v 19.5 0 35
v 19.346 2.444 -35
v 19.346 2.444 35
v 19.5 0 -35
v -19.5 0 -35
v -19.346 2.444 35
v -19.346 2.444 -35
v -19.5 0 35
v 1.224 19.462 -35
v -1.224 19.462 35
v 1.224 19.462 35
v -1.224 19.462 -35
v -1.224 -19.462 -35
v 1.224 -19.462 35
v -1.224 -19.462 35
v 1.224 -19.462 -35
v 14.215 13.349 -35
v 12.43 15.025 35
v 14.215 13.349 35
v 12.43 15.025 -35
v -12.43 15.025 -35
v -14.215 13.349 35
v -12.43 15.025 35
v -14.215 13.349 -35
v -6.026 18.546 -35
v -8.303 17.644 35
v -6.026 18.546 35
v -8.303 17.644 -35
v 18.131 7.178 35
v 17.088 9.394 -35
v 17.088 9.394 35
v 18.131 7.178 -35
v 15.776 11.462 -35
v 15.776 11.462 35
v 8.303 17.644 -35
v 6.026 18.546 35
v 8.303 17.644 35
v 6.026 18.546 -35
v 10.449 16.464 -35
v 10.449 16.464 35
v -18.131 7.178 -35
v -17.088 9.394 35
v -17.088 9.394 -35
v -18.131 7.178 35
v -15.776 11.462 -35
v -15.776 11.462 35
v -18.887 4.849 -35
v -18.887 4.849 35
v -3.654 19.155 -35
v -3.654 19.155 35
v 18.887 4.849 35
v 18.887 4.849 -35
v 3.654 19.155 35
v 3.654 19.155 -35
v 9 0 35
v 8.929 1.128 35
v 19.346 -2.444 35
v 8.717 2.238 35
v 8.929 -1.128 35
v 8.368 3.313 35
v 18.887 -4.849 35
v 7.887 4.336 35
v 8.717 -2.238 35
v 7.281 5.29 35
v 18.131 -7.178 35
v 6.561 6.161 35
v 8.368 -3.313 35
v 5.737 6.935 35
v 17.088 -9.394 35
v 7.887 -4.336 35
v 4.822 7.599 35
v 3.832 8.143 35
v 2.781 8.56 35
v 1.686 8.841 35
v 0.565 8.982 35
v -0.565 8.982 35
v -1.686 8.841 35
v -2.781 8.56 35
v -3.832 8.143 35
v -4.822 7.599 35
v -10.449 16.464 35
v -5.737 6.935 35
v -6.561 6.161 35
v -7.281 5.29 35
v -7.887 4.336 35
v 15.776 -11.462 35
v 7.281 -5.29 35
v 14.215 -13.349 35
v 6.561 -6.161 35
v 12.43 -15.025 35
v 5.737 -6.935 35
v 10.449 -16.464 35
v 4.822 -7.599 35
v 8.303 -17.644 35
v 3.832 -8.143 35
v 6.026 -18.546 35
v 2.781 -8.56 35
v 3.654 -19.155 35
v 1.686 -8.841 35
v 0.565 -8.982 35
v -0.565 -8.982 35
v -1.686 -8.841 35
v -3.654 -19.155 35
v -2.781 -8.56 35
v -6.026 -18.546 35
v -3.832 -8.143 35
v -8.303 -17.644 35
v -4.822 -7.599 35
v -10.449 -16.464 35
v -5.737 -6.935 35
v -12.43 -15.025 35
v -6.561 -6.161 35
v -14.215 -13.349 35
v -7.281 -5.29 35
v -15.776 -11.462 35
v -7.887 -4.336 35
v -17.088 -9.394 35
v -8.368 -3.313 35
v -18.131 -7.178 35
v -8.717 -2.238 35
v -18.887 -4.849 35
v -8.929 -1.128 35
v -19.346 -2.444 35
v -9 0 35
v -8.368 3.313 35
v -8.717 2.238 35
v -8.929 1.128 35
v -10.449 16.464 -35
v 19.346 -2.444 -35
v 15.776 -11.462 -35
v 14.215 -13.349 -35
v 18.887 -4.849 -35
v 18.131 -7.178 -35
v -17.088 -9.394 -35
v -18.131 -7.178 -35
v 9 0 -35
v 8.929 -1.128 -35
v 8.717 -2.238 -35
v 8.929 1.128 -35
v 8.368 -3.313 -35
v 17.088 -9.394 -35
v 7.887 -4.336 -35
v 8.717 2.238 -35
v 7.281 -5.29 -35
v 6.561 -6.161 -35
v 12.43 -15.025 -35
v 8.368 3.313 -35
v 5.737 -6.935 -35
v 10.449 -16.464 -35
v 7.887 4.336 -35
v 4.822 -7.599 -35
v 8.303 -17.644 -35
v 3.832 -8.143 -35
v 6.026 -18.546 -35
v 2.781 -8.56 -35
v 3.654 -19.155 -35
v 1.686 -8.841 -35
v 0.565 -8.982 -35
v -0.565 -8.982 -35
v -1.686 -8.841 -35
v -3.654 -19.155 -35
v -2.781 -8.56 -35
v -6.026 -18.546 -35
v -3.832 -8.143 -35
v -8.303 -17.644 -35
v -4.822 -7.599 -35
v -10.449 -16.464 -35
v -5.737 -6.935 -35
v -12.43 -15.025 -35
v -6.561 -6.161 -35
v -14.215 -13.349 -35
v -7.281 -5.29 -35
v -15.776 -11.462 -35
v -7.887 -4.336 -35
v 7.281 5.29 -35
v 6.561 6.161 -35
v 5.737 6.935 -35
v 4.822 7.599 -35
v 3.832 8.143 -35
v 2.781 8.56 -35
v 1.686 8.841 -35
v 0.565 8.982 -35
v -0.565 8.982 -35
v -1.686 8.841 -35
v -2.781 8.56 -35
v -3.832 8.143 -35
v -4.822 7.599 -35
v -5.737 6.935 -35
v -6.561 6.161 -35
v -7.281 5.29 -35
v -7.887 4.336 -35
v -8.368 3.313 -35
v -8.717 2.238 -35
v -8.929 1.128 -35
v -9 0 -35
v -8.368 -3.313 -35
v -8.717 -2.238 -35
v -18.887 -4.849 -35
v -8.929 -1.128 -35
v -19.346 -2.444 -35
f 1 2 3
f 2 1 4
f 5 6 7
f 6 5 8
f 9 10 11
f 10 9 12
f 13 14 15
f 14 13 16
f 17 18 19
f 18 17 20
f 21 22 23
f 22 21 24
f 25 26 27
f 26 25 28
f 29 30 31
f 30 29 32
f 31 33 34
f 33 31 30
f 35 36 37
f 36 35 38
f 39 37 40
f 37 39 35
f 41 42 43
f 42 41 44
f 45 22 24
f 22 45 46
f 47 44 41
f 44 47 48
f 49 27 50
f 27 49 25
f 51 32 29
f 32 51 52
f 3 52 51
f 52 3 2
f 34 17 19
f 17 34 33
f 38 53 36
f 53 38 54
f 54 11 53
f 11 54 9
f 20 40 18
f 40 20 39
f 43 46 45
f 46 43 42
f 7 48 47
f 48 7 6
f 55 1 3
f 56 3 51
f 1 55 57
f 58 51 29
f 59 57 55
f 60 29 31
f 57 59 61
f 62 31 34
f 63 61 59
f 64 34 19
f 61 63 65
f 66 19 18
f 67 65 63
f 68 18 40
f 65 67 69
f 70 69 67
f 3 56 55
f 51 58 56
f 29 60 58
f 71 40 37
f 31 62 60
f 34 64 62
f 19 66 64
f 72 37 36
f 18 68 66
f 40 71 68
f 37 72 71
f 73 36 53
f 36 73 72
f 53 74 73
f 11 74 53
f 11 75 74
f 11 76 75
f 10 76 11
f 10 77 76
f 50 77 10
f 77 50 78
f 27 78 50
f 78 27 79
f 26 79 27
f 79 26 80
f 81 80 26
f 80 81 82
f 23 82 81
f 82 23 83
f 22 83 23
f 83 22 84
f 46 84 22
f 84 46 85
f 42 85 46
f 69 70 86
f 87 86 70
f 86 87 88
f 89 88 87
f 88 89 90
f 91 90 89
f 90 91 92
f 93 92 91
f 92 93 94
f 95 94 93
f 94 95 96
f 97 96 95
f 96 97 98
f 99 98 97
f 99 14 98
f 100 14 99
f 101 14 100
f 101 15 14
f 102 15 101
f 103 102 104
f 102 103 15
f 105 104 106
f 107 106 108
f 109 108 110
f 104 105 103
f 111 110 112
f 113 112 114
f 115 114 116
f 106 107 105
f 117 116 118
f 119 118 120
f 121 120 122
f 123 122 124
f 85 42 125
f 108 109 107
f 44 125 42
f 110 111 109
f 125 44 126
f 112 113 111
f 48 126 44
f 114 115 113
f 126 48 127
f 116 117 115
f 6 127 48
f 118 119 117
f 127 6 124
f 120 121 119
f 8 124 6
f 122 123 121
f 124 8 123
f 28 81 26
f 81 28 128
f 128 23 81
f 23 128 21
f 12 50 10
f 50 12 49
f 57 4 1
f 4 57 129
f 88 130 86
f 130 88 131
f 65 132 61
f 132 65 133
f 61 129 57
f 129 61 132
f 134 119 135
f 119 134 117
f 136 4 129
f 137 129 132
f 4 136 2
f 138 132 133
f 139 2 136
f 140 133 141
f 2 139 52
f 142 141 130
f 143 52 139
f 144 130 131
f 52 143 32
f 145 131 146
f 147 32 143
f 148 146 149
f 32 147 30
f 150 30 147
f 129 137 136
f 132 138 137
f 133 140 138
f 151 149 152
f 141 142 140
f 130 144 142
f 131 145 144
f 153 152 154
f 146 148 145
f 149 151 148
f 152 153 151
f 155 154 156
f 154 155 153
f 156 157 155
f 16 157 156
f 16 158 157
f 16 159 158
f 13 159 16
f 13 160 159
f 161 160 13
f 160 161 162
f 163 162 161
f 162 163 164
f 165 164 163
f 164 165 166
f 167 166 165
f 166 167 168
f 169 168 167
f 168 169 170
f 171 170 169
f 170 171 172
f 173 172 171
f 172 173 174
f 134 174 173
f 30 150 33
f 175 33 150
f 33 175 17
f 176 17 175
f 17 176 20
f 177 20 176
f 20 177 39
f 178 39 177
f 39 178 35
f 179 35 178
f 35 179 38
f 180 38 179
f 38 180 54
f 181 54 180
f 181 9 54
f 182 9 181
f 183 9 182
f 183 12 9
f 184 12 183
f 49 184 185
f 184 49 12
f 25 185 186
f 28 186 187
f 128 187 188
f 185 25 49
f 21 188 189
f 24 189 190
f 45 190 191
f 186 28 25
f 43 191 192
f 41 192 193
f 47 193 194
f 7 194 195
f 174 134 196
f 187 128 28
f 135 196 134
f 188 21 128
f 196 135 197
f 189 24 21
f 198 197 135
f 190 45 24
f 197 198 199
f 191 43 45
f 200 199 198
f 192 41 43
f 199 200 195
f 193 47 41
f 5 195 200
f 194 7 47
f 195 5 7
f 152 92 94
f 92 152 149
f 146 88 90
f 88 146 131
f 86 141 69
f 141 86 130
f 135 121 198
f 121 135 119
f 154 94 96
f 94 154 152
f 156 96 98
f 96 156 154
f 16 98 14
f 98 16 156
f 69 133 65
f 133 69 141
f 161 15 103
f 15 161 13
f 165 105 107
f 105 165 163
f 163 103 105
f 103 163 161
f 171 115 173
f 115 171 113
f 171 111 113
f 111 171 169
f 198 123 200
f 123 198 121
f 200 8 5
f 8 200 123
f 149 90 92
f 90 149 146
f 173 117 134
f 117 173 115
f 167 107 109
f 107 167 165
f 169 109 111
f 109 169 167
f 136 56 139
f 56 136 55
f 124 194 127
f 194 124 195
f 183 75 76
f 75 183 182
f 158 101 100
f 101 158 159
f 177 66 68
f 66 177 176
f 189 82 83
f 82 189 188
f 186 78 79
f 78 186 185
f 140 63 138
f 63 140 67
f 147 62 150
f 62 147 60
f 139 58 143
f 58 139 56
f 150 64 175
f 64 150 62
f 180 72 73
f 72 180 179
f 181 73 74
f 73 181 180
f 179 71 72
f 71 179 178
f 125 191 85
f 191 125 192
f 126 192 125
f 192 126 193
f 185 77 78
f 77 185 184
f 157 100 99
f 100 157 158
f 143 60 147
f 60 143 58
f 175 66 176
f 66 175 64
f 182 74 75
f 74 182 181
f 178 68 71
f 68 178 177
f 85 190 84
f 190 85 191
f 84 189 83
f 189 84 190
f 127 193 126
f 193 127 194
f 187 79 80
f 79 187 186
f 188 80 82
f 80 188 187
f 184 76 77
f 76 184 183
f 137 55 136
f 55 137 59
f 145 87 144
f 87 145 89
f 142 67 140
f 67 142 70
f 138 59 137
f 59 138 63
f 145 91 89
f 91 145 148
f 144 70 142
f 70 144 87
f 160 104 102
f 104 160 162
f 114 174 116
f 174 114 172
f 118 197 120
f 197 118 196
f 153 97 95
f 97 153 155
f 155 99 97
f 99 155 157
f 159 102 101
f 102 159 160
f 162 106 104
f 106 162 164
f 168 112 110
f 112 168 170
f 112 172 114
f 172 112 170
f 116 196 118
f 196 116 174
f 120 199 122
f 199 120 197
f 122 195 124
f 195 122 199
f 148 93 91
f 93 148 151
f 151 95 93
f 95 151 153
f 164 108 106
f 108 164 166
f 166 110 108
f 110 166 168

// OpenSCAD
$fn = 50;


difference() {
	union() {
		translate(v = [0, 0, -35.0000000000]) {
			cylinder(h = 70, r = 19.5000000000);
		}
	}
	union() {
		translate(v = [0, 0, -100.0000000000]) {
			cylinder(h = 200, r = 9);
		}
	}
}
